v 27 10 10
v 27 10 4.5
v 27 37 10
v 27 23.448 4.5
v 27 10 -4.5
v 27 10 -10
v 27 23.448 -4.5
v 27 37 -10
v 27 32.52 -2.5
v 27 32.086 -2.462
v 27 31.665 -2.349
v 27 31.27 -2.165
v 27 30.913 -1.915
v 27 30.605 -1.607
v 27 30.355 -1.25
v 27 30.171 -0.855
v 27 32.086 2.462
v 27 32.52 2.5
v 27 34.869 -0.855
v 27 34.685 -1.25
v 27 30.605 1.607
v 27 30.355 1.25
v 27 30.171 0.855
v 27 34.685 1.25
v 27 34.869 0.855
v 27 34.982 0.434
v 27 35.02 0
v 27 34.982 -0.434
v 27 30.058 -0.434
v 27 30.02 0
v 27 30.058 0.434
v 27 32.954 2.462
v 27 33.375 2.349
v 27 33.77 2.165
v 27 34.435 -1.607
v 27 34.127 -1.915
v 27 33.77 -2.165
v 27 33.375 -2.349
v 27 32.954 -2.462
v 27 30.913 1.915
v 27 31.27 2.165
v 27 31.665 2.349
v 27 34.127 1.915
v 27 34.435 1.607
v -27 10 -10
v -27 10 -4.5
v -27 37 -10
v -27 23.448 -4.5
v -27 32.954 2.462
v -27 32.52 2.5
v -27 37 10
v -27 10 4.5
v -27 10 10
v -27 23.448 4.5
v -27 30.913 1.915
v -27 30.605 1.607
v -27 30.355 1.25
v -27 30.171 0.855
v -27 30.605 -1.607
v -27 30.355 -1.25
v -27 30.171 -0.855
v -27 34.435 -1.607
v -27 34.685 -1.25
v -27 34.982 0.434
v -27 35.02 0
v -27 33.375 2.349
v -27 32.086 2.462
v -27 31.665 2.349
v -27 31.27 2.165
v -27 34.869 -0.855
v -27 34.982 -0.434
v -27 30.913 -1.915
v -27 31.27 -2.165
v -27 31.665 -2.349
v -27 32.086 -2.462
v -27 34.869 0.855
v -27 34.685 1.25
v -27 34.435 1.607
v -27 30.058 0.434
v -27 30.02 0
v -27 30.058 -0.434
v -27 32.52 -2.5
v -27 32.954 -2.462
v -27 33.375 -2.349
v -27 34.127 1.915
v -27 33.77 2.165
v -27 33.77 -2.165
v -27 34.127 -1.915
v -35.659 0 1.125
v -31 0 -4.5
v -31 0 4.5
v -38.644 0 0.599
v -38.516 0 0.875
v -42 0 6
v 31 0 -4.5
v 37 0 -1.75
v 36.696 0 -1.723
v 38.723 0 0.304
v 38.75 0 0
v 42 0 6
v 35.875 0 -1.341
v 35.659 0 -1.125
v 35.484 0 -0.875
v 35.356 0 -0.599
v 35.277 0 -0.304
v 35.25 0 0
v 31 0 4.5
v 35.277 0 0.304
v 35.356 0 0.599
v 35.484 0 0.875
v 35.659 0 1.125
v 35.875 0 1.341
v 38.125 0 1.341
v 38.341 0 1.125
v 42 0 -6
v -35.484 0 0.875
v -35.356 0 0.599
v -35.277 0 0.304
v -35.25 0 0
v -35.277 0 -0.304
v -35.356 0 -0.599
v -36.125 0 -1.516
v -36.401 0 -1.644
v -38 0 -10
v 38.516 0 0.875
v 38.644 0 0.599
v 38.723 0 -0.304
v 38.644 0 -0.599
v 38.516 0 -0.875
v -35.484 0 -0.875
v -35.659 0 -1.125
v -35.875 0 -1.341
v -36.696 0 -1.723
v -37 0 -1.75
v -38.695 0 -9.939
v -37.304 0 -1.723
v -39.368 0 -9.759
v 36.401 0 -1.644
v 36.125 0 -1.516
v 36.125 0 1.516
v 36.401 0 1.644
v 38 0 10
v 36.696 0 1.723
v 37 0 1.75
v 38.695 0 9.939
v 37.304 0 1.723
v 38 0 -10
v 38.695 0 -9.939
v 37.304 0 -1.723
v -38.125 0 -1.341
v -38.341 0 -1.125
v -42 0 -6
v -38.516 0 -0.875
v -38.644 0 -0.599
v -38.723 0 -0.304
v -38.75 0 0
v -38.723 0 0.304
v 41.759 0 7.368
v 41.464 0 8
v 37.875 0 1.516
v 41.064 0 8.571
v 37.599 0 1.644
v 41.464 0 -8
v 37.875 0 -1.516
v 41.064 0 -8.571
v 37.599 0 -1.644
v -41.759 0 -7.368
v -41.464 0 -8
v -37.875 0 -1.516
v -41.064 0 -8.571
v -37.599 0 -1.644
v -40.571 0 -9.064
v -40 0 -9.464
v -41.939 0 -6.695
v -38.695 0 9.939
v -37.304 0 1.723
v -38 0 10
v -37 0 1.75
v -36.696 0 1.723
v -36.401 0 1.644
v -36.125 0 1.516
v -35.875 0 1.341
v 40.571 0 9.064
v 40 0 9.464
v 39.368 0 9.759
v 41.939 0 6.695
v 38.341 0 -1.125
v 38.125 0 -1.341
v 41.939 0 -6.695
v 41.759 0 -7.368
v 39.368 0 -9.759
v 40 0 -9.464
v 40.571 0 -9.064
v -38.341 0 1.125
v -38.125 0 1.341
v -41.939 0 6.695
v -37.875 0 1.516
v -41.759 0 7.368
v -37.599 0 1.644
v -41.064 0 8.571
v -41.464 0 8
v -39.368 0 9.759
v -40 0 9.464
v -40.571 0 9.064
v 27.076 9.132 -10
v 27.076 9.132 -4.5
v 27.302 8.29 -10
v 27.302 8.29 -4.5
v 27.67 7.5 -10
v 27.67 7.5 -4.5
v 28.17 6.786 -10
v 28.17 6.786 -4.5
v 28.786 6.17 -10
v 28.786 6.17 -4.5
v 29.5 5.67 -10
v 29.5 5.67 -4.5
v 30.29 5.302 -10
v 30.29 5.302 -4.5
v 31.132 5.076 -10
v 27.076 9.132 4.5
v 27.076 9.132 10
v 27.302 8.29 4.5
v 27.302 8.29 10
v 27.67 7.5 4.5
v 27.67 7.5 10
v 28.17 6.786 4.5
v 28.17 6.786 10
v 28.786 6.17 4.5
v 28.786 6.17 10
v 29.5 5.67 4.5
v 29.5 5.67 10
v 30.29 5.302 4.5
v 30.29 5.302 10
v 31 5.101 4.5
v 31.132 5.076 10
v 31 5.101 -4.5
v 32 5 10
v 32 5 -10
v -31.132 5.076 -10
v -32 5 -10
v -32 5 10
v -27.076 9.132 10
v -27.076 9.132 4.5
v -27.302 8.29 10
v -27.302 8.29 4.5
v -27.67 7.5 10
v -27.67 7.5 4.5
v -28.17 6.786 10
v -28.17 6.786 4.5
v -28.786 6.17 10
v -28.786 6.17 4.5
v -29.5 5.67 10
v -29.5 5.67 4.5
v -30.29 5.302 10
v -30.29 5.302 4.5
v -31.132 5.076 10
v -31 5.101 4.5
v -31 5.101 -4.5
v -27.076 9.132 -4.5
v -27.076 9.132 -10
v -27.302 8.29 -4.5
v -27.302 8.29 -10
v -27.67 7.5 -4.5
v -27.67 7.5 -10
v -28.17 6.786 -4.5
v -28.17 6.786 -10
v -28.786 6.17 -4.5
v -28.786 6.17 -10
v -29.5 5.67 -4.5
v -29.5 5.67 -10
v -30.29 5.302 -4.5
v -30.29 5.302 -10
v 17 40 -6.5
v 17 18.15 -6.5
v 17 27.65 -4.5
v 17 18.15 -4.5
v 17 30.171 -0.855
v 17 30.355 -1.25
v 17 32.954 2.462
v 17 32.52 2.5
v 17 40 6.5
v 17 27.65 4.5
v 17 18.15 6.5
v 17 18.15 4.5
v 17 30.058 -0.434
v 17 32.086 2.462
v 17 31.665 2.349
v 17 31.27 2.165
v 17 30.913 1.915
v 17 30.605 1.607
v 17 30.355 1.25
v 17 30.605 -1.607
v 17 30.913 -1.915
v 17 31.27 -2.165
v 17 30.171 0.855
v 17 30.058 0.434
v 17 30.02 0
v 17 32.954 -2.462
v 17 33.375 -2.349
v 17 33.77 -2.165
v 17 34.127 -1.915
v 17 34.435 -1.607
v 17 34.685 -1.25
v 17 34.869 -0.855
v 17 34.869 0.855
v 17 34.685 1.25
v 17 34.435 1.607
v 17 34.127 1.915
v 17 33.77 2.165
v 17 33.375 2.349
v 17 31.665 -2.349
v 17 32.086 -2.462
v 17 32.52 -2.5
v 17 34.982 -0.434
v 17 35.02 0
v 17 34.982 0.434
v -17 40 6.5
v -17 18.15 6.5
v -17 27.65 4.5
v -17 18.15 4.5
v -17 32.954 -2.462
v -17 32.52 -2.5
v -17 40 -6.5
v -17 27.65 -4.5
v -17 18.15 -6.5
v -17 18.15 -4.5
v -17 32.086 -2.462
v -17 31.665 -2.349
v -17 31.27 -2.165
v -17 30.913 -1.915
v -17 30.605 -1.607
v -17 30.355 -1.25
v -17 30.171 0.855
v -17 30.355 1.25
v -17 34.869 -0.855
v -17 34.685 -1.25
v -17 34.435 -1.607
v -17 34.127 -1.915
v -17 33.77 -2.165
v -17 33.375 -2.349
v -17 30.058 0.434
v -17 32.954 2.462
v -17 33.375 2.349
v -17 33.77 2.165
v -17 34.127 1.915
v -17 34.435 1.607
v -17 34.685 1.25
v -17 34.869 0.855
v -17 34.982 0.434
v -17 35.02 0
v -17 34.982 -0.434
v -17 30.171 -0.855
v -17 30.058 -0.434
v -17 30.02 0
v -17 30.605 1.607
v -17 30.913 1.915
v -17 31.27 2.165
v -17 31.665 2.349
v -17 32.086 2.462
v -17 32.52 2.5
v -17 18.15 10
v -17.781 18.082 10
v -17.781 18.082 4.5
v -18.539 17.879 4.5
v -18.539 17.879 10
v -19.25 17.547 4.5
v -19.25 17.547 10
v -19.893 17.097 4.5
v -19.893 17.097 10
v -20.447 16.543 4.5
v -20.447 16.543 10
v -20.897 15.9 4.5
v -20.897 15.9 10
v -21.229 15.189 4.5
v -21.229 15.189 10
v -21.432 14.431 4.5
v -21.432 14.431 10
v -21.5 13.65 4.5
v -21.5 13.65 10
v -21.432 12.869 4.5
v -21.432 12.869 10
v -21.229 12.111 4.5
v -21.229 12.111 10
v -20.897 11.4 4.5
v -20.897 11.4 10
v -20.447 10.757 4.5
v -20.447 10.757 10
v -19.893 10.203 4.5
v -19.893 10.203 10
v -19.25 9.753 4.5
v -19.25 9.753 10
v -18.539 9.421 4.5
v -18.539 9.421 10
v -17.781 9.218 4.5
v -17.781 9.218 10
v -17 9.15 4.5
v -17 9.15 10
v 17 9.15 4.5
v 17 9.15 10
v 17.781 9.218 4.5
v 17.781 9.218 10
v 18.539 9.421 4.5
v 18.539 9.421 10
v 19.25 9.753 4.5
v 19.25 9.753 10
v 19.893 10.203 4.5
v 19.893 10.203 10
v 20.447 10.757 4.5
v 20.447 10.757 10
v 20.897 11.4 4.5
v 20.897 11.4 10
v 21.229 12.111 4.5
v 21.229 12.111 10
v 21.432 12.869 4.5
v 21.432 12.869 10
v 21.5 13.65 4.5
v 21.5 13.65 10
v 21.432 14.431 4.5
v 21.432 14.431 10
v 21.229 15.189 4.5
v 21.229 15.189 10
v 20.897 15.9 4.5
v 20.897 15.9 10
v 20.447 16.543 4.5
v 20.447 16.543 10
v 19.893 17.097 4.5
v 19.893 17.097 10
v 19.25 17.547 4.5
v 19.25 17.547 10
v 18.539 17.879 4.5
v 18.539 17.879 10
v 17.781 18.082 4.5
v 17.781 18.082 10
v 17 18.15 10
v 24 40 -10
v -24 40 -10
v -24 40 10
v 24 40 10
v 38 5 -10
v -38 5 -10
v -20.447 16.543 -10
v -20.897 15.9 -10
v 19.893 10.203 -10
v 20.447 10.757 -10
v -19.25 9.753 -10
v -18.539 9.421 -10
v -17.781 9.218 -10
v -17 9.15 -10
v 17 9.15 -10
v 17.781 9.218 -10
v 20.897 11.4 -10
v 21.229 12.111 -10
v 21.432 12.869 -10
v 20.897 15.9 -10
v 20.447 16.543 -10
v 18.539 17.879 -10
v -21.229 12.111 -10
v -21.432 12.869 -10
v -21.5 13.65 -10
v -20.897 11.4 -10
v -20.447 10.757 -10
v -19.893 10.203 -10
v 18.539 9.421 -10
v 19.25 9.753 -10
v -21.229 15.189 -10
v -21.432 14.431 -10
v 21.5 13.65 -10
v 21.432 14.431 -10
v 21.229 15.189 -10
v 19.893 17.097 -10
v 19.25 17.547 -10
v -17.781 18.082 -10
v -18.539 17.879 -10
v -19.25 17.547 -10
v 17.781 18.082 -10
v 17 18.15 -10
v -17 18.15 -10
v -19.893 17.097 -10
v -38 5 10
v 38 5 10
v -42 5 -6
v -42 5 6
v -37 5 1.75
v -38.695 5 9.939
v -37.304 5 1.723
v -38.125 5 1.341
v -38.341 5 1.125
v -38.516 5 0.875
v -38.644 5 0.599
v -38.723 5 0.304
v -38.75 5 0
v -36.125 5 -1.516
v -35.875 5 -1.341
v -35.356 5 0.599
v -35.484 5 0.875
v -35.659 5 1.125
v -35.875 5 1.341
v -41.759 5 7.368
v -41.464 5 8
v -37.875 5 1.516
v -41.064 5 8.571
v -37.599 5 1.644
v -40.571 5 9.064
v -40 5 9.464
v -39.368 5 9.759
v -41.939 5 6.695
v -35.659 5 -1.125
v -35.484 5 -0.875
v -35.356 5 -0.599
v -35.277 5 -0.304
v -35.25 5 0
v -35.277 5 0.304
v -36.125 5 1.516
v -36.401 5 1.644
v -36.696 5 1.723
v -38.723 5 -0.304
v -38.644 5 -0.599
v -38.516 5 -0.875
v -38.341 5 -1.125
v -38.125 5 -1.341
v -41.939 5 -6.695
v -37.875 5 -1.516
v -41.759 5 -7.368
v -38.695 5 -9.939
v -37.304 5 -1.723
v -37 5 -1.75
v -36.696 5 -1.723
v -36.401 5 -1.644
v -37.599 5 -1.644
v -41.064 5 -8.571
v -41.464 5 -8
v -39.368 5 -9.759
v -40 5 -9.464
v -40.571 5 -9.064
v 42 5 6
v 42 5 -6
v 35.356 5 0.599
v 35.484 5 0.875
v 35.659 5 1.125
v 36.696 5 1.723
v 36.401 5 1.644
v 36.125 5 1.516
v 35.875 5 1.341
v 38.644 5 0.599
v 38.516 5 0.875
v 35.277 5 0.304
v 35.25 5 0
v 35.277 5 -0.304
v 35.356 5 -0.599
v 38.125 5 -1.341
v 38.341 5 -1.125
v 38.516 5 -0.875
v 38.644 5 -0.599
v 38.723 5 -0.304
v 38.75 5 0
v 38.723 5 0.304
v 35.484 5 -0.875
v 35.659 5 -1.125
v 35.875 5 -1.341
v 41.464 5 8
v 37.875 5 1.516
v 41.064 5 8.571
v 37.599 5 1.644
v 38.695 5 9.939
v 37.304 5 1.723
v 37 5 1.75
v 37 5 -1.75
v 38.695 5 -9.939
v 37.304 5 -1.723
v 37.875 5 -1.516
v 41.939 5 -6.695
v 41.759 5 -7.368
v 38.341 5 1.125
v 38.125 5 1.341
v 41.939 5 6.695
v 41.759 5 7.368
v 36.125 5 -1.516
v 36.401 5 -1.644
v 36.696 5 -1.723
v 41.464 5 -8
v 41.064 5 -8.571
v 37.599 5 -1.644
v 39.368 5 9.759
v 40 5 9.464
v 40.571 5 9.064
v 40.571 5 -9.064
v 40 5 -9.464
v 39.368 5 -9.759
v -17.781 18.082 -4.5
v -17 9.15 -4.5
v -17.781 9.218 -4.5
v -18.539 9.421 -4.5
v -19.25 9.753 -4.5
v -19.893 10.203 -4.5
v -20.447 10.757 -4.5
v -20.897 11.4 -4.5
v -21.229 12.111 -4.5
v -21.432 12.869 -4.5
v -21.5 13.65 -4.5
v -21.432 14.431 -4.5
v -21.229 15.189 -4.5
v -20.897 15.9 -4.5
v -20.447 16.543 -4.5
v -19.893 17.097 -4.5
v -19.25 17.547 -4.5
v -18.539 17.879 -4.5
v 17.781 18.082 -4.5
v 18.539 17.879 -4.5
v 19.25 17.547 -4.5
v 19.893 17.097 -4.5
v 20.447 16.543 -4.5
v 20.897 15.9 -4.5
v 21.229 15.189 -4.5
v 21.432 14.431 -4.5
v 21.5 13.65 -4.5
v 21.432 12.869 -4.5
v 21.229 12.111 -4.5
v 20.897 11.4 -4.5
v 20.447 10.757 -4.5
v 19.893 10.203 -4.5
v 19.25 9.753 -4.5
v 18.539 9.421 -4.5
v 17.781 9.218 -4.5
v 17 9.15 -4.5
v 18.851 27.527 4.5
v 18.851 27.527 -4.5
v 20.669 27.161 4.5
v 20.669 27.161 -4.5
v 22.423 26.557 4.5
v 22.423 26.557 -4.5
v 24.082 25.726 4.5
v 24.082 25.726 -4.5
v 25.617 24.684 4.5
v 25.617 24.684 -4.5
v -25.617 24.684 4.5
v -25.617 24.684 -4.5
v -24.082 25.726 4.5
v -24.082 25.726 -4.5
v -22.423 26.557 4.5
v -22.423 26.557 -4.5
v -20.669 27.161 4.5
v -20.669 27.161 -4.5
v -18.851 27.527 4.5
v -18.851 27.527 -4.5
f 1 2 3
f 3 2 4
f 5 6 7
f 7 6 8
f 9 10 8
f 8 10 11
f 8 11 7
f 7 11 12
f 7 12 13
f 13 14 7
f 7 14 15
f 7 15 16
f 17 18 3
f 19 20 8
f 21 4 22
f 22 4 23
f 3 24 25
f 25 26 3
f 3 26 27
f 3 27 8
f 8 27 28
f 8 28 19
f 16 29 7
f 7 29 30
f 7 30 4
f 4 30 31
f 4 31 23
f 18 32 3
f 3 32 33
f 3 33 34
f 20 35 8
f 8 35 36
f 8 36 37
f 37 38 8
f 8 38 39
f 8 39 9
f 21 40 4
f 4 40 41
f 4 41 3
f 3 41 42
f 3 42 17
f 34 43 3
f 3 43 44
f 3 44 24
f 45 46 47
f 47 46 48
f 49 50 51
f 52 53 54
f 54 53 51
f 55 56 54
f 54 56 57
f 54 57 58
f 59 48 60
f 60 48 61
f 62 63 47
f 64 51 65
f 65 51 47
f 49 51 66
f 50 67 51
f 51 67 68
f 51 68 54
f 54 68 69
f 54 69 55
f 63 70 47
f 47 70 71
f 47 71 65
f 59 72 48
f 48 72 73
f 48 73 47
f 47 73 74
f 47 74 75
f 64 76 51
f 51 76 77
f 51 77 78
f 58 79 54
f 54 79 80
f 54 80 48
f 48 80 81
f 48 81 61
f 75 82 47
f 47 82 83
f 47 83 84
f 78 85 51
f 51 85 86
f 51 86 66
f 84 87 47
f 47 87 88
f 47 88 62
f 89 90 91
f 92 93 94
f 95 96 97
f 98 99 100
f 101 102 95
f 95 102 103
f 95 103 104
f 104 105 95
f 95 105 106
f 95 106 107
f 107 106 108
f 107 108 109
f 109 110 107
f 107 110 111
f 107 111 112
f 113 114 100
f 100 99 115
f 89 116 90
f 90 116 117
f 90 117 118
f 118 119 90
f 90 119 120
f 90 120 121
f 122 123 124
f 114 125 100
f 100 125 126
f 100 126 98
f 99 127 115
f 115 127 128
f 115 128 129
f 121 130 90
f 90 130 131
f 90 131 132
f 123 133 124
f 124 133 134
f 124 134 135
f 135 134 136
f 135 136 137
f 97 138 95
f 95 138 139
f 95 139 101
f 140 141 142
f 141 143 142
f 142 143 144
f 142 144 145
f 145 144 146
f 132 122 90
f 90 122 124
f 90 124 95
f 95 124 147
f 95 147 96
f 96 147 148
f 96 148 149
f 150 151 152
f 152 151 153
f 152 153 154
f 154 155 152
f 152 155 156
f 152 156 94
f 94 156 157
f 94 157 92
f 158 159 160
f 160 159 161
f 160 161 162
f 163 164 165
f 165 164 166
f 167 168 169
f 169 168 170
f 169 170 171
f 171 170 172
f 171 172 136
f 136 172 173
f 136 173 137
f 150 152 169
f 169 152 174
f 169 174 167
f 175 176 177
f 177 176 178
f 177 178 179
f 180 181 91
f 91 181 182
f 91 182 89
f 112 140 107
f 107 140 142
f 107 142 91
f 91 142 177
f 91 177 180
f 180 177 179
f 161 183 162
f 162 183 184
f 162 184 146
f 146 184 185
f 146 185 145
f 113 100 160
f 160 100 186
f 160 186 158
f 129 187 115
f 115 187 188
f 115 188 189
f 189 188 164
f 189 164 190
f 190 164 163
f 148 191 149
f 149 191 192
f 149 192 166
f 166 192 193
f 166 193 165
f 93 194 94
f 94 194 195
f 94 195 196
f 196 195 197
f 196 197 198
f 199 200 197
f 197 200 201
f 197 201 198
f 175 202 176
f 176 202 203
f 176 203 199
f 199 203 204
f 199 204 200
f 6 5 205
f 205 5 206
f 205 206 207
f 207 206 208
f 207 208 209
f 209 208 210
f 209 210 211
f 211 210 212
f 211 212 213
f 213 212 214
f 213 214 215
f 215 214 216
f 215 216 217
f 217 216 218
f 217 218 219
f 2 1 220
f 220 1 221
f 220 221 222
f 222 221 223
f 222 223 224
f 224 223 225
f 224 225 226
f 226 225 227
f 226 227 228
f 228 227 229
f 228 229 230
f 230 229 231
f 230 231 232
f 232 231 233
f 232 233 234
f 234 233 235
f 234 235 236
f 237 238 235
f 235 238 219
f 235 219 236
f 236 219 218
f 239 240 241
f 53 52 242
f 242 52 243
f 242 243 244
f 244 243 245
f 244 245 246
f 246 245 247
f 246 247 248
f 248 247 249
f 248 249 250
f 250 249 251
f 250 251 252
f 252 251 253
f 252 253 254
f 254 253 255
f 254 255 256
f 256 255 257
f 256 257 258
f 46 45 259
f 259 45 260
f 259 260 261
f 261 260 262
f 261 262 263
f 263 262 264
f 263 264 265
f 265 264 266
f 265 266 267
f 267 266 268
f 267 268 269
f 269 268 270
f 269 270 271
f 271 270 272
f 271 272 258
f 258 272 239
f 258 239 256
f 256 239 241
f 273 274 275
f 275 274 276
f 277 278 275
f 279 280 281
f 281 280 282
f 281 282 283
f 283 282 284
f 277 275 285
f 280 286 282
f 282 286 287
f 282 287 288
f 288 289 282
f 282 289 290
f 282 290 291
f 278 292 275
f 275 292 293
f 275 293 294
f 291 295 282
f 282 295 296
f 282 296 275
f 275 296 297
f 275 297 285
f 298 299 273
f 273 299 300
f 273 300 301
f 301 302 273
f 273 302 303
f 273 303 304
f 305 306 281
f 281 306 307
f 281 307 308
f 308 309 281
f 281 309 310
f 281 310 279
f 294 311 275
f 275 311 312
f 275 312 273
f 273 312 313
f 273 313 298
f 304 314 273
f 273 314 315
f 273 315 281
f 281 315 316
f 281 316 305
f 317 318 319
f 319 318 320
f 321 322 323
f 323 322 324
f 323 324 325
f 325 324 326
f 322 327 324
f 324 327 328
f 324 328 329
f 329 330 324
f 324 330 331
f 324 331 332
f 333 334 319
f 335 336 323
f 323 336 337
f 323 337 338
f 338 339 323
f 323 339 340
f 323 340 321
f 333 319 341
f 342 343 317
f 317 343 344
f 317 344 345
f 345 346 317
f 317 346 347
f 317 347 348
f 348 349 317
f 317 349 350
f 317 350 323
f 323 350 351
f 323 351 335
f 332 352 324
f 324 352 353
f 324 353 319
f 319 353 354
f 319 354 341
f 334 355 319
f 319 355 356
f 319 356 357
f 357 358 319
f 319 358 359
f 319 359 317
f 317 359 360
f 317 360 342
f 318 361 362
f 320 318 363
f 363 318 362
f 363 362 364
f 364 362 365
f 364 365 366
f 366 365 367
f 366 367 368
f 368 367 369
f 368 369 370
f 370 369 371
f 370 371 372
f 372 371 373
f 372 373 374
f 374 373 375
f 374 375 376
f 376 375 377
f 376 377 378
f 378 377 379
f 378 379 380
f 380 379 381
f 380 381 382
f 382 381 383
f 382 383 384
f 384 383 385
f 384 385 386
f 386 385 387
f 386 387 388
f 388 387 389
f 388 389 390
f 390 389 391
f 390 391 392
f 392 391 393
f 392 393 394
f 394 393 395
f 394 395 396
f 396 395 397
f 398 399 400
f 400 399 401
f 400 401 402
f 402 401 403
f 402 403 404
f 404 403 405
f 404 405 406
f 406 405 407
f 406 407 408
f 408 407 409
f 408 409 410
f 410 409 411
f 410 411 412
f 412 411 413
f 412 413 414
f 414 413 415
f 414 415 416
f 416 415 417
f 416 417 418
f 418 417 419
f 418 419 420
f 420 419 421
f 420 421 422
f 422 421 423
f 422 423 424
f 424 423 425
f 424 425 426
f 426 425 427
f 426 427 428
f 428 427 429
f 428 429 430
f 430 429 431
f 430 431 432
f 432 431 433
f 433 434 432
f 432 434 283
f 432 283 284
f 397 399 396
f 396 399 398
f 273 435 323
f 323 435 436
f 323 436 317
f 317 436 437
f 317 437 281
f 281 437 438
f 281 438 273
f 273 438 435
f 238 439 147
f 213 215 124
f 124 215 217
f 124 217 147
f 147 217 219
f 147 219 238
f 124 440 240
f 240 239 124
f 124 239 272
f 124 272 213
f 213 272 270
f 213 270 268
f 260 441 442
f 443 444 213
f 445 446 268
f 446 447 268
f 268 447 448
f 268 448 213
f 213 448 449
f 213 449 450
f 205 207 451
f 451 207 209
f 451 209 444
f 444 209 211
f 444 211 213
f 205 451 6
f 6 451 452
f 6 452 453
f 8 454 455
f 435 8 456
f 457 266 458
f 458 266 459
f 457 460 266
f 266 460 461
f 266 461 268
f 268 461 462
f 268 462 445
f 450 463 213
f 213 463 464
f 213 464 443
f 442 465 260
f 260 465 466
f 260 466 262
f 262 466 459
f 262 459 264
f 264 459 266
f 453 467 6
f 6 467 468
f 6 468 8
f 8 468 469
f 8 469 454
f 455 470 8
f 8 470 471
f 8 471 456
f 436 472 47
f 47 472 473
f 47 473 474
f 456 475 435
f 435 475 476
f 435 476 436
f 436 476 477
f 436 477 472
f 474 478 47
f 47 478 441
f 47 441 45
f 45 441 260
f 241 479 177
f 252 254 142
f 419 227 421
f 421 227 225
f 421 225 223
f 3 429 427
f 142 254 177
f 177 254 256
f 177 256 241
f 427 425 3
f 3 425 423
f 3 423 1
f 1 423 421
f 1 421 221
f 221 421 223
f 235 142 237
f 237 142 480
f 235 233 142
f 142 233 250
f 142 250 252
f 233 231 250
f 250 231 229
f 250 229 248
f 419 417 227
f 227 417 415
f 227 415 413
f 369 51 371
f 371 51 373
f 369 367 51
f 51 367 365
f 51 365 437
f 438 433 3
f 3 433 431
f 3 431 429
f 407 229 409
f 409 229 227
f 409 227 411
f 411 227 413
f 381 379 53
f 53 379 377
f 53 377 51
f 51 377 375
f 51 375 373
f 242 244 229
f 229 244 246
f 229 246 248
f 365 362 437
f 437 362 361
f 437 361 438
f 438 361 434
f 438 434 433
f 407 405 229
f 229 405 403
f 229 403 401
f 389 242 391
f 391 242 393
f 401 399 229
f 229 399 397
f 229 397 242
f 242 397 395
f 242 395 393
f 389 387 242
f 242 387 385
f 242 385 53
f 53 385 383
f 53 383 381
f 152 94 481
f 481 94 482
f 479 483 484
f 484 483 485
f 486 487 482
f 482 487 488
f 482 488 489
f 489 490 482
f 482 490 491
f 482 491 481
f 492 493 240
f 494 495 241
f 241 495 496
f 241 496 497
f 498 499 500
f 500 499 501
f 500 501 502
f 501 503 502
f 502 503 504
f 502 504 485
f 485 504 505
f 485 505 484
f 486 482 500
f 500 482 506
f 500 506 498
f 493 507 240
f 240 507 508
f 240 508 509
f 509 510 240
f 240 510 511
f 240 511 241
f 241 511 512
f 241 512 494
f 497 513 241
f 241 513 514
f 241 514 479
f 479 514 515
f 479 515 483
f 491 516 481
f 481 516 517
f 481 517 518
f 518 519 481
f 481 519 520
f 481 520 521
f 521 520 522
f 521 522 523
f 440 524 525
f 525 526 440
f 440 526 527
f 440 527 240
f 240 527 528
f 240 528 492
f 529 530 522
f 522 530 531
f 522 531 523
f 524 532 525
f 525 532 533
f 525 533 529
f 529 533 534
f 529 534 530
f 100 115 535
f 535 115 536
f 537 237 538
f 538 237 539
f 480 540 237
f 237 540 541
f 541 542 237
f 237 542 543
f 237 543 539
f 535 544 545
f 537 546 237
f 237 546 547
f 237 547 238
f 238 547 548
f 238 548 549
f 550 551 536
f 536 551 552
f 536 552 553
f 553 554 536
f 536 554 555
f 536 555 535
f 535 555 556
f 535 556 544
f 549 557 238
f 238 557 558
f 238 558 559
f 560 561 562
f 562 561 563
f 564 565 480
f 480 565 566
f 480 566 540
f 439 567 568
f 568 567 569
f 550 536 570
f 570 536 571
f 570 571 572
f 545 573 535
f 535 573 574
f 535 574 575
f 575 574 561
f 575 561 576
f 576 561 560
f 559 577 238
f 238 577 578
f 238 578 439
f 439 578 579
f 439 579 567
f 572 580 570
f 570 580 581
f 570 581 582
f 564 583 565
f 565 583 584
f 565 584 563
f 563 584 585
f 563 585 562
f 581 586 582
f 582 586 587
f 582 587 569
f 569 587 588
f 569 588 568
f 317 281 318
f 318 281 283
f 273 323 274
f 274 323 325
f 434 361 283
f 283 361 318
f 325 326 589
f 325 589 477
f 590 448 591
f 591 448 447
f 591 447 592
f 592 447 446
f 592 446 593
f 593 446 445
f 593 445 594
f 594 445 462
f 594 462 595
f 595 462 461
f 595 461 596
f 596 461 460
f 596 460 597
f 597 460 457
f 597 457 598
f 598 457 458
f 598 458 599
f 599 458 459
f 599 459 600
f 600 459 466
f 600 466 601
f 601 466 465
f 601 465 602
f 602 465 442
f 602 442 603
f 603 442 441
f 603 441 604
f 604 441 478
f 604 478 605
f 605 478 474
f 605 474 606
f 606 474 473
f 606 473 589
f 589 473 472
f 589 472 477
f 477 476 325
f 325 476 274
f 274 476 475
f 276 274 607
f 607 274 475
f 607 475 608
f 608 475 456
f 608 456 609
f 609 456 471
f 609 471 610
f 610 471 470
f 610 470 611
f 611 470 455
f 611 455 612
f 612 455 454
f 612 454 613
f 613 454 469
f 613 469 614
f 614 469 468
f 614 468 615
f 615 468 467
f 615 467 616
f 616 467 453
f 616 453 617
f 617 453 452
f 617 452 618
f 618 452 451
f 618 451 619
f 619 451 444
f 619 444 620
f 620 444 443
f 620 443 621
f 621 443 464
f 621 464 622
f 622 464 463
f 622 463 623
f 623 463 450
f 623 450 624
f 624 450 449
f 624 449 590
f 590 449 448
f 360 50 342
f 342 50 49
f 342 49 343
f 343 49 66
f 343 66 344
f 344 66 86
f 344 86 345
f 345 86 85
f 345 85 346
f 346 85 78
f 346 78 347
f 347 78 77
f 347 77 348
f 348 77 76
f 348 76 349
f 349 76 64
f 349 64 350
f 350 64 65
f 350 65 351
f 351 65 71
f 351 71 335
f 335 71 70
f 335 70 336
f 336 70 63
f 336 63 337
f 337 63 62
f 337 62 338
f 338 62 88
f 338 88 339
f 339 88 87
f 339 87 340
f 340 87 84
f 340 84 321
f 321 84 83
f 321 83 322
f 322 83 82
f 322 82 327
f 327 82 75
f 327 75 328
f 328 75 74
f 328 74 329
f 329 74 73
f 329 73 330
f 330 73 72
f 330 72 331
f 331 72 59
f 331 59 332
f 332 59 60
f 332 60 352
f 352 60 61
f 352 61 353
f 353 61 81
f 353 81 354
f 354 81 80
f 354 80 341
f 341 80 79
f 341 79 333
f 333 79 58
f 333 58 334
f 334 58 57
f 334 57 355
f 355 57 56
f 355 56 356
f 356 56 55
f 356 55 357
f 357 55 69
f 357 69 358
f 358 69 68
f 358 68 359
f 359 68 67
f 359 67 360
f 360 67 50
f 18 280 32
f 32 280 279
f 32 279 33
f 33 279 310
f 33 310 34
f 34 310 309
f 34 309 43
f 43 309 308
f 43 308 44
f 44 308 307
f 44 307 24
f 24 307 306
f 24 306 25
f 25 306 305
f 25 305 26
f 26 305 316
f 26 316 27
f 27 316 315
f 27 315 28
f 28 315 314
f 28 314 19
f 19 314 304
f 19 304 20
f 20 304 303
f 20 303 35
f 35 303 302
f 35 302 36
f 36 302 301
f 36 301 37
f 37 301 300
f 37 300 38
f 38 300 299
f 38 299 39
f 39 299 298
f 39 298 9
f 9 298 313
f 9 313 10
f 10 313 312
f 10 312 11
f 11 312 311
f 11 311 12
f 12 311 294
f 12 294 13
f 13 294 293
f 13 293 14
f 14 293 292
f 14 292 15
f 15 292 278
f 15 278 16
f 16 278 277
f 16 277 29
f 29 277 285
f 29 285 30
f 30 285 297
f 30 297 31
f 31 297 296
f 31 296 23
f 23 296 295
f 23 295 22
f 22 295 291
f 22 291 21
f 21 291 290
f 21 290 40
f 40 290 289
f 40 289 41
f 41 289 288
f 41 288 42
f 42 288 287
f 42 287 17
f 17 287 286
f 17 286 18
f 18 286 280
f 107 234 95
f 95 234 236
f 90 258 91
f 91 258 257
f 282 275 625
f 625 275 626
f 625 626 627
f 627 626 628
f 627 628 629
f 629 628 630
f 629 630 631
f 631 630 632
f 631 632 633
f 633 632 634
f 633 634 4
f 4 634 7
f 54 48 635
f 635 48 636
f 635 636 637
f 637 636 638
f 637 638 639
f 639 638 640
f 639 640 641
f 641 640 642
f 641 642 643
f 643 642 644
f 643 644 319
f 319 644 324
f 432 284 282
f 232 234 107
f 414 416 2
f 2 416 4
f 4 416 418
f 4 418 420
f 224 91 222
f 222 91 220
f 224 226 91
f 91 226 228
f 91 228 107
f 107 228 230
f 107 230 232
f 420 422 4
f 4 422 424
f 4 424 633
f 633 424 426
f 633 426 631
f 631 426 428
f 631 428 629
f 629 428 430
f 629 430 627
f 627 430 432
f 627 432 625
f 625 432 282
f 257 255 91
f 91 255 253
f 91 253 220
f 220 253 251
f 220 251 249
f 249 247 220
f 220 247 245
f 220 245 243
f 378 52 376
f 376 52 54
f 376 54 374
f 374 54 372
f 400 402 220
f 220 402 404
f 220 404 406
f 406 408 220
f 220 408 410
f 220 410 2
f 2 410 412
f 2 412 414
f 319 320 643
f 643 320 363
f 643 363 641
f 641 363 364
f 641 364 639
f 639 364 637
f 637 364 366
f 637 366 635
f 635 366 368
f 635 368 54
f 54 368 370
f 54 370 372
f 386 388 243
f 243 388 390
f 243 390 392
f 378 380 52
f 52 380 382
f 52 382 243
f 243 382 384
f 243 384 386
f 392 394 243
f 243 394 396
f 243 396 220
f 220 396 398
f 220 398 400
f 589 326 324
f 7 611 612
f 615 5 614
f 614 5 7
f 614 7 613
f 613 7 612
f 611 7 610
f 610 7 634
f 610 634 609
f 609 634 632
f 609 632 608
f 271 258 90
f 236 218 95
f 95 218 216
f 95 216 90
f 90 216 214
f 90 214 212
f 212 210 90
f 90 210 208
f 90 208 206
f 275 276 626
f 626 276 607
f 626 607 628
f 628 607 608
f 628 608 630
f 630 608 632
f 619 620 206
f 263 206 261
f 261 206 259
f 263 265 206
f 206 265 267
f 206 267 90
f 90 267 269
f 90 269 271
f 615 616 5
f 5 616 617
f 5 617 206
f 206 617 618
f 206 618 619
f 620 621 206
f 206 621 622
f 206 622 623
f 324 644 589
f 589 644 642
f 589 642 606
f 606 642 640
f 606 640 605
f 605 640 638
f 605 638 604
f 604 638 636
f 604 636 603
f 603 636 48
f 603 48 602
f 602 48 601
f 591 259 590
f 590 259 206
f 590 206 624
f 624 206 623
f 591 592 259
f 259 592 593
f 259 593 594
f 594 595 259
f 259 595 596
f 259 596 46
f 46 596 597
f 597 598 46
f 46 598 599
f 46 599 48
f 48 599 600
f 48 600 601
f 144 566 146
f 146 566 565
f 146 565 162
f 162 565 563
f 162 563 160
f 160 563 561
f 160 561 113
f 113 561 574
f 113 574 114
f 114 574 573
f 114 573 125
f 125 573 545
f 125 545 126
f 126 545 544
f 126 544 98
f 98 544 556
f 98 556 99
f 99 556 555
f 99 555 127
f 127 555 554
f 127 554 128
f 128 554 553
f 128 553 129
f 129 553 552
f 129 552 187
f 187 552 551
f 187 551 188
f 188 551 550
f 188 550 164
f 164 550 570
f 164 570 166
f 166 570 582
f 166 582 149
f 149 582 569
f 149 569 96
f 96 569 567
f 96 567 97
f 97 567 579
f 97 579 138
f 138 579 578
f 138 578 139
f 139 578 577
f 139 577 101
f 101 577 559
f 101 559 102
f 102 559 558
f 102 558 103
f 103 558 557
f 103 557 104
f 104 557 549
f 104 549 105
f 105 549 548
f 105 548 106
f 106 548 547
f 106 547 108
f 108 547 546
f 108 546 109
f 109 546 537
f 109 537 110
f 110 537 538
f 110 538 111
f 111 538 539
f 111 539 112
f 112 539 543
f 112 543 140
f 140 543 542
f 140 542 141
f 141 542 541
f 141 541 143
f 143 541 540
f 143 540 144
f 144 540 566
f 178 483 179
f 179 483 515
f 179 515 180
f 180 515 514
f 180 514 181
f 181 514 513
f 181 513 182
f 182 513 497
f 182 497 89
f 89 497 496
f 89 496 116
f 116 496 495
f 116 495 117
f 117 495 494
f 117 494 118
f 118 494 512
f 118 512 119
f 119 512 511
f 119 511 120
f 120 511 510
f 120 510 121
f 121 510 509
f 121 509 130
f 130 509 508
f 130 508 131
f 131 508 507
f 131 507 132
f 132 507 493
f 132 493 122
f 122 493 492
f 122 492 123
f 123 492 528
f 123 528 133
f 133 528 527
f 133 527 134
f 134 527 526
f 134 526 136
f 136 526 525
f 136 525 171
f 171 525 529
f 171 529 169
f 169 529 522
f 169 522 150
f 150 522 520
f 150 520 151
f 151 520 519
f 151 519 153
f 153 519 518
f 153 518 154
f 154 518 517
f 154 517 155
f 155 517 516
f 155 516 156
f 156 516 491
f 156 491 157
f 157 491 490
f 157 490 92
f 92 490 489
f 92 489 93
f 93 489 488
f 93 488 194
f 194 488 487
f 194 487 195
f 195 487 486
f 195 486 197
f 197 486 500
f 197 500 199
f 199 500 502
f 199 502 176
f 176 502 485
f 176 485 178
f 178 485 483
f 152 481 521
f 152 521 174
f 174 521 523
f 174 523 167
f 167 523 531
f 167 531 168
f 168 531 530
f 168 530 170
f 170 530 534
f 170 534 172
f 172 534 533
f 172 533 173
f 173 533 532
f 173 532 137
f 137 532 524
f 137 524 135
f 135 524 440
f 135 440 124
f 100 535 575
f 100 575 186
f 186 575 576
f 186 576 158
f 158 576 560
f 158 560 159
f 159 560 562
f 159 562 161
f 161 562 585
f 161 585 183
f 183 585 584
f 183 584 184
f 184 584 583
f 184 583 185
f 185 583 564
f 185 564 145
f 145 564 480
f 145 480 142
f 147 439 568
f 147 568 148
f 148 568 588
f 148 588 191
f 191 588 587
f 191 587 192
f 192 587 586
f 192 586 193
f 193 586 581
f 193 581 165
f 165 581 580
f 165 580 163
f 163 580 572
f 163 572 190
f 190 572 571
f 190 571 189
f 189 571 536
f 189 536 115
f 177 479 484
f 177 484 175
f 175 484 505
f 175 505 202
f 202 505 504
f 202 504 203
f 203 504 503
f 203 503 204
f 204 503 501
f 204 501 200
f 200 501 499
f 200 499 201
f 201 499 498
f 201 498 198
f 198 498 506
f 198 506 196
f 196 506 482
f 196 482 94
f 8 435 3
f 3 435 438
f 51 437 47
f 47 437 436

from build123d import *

# Parameters (mm, degrees)
SKETCH1_W           = 54
SKETCH1_H           = 20
BOSS_EXTRUDE1_DEPTH = 40
SKETCH4_W           = 15
SKETCH4_H           = 20
BOSS_EXTRUDE2_DEPTH = 5
FILLET1_R           = 5
SKETCH6_W           = 34
SKETCH6_H           = 13
CUT_EXTRUDE3_DEPTH  = 26.35
CUT_EXTRUDE4_DEPTH  = 21
SKETCH3_R           = 2.5
CUT_EXTRUDE2_DEPTH  = 70
CUT_EXTRUDE5_DEPTH  = 9
SKETCH9_R           = 1.75
CUT_EXTRUDE6_DEPTH  = 6
FILLET2_R           = 4
CHAMFER1_SIZE       = 3


with BuildPart() as part:
    # Sketch1 → Boss-Extrude1 (new body)
    with BuildSketch(Plane(origin=(0, 0, 0), x_dir=(1, 0, 0), z_dir=(0, 1, 0))):
        Rectangle(SKETCH1_W, SKETCH1_H)
    extrude(amount=BOSS_EXTRUDE1_DEPTH)

    # Sketch4 → Boss-Extrude2 (add)
    with BuildSketch(Plane.XZ):
        with Locations((-34.5, 0)):
            Rectangle(SKETCH4_W, SKETCH4_H)
        with Locations((34.5, 0)):
            Rectangle(SKETCH4_W, SKETCH4_H)
    extrude(amount=-BOSS_EXTRUDE2_DEPTH)

    # Fillet1
    fillet1_edges = [part.edges().sort_by_distance(p)[0] for p in [
        (-27, 5, 0),
        (27, 5, 0),
    ]]
    fillet(fillet1_edges, radius=FILLET1_R)

    # Sketch6 → Cut-Extrude3 (cut)
    with BuildSketch(Plane.XZ.offset(-40)):
        Rectangle(SKETCH6_W, SKETCH6_H)
    extrude(amount=CUT_EXTRUDE3_DEPTH, mode=Mode.SUBTRACT)

    # Sketch7 → Cut-Extrude4 (cut, through all)
    with BuildSketch(Plane.XY.offset(10)):
        with BuildLine():
            Line((-17, 18.15), (17, 18.15))
            ThreePointArc((17, 18.15), (21.5, 13.65), (17, 9.15))
            Line((17, 9.15), (-17, 9.15))
            ThreePointArc((-17, 9.15), (-21.5, 13.65), (-17, 18.15))
        make_face()
    extrude(amount=-CUT_EXTRUDE4_DEPTH, mode=Mode.SUBTRACT)

    # Sketch3 → Cut-Extrude2 (cut, through all)
    with BuildSketch(Plane.ZY.offset(27)):
        with Locations((0, 32.52)):
            Circle(SKETCH3_R)
    extrude(amount=-CUT_EXTRUDE2_DEPTH, mode=Mode.SUBTRACT)

    # Sketch8 → Cut-Extrude5 (cut)
    with BuildSketch(Plane(origin=(0, 0, -4.5), x_dir=(-1, 0, 0), z_dir=(0, 0, -1))):
        with BuildLine():
            Line((-17, 27.65), (17, 27.65))
            ThreePointArc((17, 27.65), (26.899494937, 23.549494937), (31, 13.65))
            Line((31, 13.65), (31, 0))
            Line((31, 0), (-31, 0))
            Line((-31, 0), (-31, 13.65))
            ThreePointArc((-31, 13.65), (-26.899494937, 23.549494937), (-17, 27.65))
        make_face()
    extrude(amount=-CUT_EXTRUDE5_DEPTH, mode=Mode.SUBTRACT)

    # Sketch9 → Cut-Extrude6 (cut, through all)
    with BuildSketch(Plane(origin=(0, 5, 0), x_dir=(1, 0, 0), z_dir=(0, 1, 0))):
        with Locations((-37, 0)):
            Circle(SKETCH9_R)
        with Locations((37, 0)):
            Circle(SKETCH9_R)
    extrude(amount=-CUT_EXTRUDE6_DEPTH, mode=Mode.SUBTRACT)

    # Fillet2
    fillet2_edges = [part.edges().sort_by_distance(p)[0] for p in [
        (-42, 2.5, -10),
        (-42, 2.5, 10),
        (42, 2.5, 10),
        (42, 2.5, -10),
    ]]
    fillet(fillet2_edges, radius=FILLET2_R)

    # Chamfer1
    chamfer1_edges = [part.edges().sort_by_distance(p)[0] for p in [
        (-27, 40, 0),
        (27, 40, 0),
    ]]
    chamfer(chamfer1_edges, length=CHAMFER1_SIZE)


solid = part.part
